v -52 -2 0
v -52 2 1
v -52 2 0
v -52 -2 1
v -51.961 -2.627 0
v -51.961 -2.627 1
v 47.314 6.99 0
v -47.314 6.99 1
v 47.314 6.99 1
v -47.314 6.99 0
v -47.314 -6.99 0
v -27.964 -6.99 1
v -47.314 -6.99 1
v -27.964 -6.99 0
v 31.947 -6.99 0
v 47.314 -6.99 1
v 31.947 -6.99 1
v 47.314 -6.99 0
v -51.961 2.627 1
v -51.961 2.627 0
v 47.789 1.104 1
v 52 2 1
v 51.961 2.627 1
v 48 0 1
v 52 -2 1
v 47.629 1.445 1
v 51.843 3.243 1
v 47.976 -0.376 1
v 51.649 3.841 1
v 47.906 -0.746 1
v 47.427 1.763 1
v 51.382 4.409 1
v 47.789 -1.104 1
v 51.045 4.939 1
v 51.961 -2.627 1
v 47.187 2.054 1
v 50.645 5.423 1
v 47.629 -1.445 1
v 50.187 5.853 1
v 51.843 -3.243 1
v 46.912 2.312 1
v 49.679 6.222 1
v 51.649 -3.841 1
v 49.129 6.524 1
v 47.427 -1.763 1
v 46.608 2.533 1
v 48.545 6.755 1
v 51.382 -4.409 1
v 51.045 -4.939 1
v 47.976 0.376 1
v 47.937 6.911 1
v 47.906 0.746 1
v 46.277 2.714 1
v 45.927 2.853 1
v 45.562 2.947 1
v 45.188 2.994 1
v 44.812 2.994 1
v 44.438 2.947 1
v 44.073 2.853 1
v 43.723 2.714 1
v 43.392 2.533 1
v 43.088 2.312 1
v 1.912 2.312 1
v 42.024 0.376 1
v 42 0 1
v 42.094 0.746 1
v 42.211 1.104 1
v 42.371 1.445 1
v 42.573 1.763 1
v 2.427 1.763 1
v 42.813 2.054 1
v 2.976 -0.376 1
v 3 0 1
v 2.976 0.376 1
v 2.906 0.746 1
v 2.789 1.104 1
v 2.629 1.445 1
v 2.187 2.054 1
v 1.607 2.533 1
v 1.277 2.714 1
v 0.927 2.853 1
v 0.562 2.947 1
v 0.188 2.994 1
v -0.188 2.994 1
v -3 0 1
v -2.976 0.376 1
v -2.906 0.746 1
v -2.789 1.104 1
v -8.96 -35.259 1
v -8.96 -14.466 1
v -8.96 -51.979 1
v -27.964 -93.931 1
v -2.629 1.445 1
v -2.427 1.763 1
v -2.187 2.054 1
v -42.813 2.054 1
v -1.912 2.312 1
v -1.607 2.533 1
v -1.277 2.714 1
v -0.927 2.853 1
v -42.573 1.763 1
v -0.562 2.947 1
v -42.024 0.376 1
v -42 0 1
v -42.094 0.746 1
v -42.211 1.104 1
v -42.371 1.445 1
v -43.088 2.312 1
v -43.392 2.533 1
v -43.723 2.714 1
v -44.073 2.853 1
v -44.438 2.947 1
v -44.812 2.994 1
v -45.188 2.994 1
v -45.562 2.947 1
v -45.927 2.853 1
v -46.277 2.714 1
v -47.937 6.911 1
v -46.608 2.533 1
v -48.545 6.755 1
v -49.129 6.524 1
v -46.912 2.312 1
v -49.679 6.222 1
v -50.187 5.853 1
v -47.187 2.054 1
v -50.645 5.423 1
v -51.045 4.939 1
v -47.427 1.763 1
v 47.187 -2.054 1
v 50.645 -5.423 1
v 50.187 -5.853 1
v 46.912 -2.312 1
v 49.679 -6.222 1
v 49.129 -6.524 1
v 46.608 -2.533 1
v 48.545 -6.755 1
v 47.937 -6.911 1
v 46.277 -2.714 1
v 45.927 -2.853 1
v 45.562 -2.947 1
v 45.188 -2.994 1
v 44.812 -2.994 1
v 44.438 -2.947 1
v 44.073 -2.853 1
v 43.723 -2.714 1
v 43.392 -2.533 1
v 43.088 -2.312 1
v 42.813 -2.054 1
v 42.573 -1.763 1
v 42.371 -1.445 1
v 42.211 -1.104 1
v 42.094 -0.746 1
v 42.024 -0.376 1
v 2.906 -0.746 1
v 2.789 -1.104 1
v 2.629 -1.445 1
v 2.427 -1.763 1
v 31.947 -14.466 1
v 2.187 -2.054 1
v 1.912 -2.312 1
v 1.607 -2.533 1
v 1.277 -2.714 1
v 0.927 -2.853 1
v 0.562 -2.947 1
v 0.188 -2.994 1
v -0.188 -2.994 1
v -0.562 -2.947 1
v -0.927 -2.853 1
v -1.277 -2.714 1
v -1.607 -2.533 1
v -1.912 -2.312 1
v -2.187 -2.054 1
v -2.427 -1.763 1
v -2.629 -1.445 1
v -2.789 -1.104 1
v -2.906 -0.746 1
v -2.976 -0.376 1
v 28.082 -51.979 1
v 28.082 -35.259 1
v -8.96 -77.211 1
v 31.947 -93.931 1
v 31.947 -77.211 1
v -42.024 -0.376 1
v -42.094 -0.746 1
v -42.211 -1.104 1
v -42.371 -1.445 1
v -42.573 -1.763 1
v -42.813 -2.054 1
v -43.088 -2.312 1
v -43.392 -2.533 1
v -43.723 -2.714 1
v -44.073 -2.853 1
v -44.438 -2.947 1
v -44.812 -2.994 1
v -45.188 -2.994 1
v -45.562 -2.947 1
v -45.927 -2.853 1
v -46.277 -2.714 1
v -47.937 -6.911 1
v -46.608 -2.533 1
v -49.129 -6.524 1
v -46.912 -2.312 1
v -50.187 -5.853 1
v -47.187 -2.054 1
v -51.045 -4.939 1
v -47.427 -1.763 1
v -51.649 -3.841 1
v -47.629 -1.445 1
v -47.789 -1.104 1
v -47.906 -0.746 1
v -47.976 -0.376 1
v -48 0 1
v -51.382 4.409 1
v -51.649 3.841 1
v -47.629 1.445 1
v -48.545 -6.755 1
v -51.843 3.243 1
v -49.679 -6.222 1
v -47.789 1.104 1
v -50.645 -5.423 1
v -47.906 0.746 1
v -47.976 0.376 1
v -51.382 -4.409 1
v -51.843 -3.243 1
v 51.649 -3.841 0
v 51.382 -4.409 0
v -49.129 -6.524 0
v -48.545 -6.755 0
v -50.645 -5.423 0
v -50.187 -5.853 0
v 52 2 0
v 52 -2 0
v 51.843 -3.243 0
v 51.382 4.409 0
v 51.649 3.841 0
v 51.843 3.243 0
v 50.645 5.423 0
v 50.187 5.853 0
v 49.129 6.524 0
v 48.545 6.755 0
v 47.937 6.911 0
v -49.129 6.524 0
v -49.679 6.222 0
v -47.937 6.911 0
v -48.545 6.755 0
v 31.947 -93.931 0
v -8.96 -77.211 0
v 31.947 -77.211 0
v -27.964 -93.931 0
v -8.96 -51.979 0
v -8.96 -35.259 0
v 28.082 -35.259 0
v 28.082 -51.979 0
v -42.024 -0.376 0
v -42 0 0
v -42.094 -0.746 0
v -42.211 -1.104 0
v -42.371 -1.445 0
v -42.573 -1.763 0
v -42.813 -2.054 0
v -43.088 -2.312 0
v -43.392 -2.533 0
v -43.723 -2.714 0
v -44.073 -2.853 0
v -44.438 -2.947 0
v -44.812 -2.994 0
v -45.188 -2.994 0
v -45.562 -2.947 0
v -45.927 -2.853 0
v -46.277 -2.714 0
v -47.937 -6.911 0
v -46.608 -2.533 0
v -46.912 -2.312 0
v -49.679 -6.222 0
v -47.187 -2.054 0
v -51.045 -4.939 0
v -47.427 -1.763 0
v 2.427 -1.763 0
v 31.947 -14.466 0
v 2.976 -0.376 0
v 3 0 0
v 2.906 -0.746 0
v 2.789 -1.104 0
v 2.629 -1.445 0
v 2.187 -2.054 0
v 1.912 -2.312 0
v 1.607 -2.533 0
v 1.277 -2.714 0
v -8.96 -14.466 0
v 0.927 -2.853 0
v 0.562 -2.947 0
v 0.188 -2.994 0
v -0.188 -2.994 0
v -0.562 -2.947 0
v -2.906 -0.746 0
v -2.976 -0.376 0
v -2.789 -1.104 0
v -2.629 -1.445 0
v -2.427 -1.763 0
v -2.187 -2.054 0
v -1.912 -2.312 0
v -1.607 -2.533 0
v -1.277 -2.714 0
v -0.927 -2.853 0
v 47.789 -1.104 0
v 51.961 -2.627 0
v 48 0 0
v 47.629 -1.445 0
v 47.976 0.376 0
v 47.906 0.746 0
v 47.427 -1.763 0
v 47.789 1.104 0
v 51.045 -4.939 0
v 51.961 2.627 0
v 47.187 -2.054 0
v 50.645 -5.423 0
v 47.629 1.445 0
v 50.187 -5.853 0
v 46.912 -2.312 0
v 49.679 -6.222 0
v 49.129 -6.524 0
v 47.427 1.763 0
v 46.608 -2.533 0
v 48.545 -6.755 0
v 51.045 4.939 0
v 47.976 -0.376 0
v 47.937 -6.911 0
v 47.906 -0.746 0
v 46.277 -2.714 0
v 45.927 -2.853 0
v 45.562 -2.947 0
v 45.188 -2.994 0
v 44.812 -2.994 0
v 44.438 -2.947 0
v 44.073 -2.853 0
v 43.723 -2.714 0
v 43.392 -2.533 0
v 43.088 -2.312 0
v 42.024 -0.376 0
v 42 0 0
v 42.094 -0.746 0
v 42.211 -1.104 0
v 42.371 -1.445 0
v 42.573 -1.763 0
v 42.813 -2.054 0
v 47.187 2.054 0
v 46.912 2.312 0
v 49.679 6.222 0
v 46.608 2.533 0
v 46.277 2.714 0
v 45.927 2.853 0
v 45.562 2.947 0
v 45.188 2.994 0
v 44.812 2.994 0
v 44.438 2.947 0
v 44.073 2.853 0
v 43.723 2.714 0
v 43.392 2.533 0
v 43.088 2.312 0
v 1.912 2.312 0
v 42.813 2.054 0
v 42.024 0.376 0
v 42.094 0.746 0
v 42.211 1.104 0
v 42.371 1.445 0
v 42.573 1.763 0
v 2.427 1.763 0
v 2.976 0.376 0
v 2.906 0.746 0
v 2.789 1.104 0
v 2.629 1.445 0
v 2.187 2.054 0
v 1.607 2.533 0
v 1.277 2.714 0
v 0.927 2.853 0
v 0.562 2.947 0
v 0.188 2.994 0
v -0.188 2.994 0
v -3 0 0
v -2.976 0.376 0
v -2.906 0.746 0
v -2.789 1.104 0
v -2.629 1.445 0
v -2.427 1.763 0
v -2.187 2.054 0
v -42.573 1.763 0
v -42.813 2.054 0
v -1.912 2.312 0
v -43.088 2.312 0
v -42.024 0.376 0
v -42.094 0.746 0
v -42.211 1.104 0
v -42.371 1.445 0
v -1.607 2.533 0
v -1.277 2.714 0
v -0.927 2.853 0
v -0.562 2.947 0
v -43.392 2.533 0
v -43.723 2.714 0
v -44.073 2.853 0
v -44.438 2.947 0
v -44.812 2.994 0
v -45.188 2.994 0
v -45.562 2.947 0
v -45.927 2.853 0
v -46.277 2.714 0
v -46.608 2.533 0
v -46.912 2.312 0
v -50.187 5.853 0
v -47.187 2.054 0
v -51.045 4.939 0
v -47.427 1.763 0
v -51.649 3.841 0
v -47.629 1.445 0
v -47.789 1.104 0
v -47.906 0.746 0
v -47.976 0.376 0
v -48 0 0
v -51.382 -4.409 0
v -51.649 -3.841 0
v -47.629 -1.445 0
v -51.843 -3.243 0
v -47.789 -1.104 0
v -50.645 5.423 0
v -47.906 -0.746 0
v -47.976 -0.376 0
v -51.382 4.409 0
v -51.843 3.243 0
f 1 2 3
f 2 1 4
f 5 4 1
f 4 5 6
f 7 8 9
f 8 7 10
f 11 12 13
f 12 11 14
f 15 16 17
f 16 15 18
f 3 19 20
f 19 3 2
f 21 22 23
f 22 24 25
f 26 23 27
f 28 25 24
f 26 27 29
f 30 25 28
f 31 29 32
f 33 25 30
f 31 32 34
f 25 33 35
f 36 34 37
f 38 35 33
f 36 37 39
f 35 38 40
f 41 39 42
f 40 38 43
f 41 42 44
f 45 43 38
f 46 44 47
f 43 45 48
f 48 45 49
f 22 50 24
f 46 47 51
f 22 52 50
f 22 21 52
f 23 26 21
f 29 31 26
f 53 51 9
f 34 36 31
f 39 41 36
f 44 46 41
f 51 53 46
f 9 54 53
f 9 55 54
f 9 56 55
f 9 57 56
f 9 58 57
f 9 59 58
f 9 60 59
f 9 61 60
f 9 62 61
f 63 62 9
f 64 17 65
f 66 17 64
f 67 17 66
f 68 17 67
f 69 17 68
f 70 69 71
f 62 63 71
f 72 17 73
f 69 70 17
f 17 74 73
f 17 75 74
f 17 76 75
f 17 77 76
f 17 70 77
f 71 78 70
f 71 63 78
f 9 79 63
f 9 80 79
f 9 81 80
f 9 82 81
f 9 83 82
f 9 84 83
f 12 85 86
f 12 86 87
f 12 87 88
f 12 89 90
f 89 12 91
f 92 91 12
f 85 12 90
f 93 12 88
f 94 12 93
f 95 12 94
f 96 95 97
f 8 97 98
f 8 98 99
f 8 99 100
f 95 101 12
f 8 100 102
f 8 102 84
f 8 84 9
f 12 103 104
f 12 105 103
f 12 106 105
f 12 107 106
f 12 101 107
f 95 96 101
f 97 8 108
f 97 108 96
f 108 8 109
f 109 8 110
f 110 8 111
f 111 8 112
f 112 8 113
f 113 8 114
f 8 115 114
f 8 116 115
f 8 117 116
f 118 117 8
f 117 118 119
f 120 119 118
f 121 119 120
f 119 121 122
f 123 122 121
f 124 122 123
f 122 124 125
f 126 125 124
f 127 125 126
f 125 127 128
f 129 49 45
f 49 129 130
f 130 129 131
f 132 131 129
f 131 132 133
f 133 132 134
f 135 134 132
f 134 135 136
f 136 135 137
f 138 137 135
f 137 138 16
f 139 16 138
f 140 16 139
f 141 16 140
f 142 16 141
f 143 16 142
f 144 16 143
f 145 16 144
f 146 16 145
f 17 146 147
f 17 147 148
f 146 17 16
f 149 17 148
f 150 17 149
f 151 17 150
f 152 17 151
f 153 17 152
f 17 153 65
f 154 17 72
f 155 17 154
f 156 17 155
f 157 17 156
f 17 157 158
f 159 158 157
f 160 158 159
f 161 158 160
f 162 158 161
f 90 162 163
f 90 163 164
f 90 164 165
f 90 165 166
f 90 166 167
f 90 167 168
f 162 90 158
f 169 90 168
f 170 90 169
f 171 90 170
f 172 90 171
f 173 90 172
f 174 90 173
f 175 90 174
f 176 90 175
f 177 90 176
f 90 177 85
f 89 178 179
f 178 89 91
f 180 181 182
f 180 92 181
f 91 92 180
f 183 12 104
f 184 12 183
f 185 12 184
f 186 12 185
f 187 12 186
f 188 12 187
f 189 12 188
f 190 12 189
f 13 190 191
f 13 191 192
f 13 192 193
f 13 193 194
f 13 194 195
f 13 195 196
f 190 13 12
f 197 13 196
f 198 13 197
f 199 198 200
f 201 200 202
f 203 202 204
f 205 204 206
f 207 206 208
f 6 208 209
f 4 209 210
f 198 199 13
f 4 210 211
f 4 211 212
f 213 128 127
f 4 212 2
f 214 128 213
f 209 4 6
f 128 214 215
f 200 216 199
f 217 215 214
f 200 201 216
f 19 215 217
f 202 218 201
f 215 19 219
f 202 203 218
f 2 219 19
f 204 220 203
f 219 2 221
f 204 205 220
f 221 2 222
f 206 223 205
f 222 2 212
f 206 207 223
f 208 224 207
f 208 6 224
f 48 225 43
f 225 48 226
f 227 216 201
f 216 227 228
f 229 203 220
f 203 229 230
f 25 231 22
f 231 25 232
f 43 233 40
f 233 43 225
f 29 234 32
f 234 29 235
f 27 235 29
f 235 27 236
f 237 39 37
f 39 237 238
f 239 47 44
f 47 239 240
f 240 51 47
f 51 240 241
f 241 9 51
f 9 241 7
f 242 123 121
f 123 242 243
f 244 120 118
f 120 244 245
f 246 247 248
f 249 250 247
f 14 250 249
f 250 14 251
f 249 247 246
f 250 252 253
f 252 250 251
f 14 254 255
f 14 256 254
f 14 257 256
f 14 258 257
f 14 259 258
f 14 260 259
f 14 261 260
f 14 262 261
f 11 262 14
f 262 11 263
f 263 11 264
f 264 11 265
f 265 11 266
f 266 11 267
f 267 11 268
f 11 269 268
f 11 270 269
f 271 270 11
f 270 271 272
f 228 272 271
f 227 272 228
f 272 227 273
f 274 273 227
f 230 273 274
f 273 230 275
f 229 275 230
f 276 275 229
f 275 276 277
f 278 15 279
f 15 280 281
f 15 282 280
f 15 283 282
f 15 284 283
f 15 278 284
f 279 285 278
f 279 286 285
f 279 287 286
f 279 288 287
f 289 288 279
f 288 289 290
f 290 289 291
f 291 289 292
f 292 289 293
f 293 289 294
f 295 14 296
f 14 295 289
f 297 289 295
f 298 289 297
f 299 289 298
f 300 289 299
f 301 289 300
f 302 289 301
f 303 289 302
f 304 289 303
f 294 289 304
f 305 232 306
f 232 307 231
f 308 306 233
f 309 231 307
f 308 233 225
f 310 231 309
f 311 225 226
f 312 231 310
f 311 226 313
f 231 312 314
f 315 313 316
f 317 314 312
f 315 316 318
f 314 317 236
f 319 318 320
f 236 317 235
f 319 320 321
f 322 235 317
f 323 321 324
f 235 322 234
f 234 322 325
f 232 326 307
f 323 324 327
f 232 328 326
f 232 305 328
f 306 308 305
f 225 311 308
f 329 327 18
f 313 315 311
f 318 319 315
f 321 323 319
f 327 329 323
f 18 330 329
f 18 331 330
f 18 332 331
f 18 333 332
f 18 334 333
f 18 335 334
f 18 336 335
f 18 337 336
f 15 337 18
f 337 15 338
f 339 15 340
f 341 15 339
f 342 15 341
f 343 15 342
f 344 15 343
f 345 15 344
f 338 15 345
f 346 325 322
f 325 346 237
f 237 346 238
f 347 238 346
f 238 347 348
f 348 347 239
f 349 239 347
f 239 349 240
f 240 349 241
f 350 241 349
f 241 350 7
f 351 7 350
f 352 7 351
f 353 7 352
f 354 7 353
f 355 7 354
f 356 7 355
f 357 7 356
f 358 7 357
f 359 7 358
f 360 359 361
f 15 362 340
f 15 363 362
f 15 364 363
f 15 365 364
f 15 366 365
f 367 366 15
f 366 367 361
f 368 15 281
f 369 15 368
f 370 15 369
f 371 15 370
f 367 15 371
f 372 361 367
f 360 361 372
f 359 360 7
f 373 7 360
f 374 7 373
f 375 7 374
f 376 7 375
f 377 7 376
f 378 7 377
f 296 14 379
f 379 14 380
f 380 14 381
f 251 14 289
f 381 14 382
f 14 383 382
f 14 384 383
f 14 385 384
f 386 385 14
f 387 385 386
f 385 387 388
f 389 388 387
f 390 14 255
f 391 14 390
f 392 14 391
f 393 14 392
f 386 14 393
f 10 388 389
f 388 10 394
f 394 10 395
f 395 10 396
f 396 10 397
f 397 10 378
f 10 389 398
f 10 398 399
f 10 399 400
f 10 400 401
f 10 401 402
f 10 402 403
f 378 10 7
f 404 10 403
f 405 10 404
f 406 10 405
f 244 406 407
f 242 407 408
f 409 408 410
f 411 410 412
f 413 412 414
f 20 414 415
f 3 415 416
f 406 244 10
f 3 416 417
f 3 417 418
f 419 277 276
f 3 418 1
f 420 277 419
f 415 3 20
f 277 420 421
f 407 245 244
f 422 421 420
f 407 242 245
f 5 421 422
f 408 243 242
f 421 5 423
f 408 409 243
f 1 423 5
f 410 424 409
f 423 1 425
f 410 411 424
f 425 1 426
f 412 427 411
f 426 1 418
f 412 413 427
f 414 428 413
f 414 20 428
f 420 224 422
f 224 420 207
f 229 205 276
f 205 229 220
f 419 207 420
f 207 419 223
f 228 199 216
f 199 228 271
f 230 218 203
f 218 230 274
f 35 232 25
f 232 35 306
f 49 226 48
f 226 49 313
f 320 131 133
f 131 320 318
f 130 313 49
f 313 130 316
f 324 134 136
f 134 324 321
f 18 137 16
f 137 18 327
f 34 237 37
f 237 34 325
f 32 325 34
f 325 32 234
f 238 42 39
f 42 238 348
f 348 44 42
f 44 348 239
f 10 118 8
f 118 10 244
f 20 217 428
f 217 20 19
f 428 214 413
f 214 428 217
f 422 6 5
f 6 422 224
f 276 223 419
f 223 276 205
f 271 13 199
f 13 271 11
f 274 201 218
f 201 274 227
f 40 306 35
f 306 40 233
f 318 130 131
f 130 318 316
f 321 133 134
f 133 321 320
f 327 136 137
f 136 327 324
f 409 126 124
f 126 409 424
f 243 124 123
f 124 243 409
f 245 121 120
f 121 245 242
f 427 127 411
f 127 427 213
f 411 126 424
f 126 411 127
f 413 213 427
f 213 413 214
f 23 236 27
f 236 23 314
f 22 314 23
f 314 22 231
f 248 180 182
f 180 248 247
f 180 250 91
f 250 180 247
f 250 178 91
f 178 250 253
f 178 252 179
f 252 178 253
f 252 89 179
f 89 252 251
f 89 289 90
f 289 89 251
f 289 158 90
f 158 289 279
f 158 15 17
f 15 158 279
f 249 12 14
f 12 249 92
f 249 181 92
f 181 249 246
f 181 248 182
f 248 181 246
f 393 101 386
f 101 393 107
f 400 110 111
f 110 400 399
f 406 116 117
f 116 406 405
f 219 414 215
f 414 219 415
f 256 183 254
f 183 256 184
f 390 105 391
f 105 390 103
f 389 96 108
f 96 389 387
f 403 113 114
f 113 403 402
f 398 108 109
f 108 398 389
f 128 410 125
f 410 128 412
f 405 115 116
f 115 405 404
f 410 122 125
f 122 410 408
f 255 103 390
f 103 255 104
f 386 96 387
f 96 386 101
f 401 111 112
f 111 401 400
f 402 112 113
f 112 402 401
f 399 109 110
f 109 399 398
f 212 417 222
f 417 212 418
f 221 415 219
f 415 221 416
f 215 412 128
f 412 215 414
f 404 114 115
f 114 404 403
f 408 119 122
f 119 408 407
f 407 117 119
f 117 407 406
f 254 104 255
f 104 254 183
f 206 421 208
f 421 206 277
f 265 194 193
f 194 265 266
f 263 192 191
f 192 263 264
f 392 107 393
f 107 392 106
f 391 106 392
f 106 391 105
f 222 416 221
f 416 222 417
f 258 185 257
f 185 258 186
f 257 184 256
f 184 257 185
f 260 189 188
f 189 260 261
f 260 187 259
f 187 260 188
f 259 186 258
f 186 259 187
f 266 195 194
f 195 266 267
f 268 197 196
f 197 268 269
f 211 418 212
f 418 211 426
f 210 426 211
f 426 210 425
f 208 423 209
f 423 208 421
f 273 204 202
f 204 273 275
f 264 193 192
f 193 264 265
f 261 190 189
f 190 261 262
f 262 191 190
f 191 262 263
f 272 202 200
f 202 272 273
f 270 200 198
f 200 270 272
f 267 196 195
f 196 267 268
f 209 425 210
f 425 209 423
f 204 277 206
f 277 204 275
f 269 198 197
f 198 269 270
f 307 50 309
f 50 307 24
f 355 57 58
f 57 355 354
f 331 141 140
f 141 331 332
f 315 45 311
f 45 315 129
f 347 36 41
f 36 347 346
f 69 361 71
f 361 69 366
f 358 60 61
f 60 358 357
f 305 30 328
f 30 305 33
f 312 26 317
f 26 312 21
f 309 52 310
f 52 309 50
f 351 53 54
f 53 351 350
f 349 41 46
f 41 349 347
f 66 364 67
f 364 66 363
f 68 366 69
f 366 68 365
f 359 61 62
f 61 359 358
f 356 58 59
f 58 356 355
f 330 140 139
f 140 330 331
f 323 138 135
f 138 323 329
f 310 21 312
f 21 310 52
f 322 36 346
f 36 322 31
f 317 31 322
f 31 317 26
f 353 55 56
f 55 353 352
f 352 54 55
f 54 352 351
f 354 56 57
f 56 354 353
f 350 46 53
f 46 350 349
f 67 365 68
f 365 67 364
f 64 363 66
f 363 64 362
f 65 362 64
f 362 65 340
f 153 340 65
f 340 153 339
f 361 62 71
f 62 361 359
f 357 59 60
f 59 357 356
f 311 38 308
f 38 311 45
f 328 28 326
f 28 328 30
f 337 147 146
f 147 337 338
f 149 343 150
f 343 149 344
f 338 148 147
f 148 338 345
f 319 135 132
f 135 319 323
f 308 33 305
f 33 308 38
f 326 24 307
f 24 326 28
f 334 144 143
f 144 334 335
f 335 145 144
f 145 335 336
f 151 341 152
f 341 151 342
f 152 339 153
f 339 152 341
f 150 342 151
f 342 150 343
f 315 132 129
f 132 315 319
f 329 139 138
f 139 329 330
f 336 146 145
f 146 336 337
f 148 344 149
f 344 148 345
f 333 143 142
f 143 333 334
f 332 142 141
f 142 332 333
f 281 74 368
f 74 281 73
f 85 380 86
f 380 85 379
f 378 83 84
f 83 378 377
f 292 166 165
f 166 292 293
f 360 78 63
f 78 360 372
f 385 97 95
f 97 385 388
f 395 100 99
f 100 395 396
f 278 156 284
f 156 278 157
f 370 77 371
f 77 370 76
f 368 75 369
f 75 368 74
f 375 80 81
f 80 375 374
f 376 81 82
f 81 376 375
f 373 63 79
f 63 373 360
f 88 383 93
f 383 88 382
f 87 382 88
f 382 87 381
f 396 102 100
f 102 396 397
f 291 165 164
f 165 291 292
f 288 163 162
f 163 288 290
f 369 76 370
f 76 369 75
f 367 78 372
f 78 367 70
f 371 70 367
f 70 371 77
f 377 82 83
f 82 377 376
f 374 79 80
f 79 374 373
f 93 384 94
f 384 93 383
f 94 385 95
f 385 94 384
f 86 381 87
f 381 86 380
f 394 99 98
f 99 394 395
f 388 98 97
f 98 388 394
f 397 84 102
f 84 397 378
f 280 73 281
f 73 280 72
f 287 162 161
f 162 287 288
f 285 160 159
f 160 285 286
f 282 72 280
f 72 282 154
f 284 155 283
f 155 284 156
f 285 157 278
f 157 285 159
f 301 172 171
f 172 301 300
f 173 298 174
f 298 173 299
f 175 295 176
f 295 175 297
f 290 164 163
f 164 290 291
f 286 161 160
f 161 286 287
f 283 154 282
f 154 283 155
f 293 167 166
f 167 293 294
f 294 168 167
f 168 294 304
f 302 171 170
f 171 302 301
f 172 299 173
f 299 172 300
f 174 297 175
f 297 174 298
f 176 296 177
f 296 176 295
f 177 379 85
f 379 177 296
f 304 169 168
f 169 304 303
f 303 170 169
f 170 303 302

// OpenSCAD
$fn = 50;


difference() {
	union() {
		translate(v = [0, 0, 0]) {
			rotate(a = [0, 0, 0]) {
				hull() {
					translate(v = [-47.0000000000, 2.0000000000, 0]) {
						rotate(a = [0, 0, 0]) {
							translate(v = [0, 0, 0]) {
								rotate(a = [0, 0, 0]) {
									cylinder(h = 1, r = 5);
								}
							}
						}
					}
					translate(v = [47.0000000000, 2.0000000000, 0]) {
						rotate(a = [0, 0, 0]) {
							translate(v = [0, 0, 0]) {
								rotate(a = [0, 0, 0]) {
									cylinder(h = 1, r = 5);
								}
							}
						}
					}
					translate(v = [-47.0000000000, -2.0000000000, 0]) {
						rotate(a = [0, 0, 0]) {
							translate(v = [0, 0, 0]) {
								rotate(a = [0, 0, 0]) {
									cylinder(h = 1, r = 5);
								}
							}
						}
					}
					translate(v = [47.0000000000, -2.0000000000, 0]) {
						rotate(a = [0, 0, 0]) {
							translate(v = [0, 0, 0]) {
								rotate(a = [0, 0, 0]) {
									cylinder(h = 1, r = 5);
								}
							}
						}
					}
				}
			}
		}
		translate(v = [0, 0, 0]) {
			rotate(a = [0, 0, 0]) {
				linear_extrude(height = 1) {
					text(font = "DejaVu Sans Mono:style=Bold", halign = "center", size = 95, text = "E", valign = "top");
				}
			}
		}
	}
	union() {
		translate(v = [-45.0000000000, 0.0000000000, -125.0000000000]) {
			rotate(a = [0, 0, 0]) {
				cylinder(h = 250, r = 3.0000000000);
			}
		}
		translate(v = [45.0000000000, 0.0000000000, -125.0000000000]) {
			rotate(a = [0, 0, 0]) {
				cylinder(h = 250, r = 3.0000000000);
			}
		}
		translate(v = [45.0000000000, 0.0000000000, -125.0000000000]) {
			rotate(a = [0, 0, 0]) {
				cylinder(h = 250, r = 3.0000000000);
			}
		}
		translate(v = [0, 0, -125.0000000000]) {
			rotate(a = [0, 0, 0]) {
				cylinder(h = 250, r = 3.0000000000);
			}
		}
	}
}
